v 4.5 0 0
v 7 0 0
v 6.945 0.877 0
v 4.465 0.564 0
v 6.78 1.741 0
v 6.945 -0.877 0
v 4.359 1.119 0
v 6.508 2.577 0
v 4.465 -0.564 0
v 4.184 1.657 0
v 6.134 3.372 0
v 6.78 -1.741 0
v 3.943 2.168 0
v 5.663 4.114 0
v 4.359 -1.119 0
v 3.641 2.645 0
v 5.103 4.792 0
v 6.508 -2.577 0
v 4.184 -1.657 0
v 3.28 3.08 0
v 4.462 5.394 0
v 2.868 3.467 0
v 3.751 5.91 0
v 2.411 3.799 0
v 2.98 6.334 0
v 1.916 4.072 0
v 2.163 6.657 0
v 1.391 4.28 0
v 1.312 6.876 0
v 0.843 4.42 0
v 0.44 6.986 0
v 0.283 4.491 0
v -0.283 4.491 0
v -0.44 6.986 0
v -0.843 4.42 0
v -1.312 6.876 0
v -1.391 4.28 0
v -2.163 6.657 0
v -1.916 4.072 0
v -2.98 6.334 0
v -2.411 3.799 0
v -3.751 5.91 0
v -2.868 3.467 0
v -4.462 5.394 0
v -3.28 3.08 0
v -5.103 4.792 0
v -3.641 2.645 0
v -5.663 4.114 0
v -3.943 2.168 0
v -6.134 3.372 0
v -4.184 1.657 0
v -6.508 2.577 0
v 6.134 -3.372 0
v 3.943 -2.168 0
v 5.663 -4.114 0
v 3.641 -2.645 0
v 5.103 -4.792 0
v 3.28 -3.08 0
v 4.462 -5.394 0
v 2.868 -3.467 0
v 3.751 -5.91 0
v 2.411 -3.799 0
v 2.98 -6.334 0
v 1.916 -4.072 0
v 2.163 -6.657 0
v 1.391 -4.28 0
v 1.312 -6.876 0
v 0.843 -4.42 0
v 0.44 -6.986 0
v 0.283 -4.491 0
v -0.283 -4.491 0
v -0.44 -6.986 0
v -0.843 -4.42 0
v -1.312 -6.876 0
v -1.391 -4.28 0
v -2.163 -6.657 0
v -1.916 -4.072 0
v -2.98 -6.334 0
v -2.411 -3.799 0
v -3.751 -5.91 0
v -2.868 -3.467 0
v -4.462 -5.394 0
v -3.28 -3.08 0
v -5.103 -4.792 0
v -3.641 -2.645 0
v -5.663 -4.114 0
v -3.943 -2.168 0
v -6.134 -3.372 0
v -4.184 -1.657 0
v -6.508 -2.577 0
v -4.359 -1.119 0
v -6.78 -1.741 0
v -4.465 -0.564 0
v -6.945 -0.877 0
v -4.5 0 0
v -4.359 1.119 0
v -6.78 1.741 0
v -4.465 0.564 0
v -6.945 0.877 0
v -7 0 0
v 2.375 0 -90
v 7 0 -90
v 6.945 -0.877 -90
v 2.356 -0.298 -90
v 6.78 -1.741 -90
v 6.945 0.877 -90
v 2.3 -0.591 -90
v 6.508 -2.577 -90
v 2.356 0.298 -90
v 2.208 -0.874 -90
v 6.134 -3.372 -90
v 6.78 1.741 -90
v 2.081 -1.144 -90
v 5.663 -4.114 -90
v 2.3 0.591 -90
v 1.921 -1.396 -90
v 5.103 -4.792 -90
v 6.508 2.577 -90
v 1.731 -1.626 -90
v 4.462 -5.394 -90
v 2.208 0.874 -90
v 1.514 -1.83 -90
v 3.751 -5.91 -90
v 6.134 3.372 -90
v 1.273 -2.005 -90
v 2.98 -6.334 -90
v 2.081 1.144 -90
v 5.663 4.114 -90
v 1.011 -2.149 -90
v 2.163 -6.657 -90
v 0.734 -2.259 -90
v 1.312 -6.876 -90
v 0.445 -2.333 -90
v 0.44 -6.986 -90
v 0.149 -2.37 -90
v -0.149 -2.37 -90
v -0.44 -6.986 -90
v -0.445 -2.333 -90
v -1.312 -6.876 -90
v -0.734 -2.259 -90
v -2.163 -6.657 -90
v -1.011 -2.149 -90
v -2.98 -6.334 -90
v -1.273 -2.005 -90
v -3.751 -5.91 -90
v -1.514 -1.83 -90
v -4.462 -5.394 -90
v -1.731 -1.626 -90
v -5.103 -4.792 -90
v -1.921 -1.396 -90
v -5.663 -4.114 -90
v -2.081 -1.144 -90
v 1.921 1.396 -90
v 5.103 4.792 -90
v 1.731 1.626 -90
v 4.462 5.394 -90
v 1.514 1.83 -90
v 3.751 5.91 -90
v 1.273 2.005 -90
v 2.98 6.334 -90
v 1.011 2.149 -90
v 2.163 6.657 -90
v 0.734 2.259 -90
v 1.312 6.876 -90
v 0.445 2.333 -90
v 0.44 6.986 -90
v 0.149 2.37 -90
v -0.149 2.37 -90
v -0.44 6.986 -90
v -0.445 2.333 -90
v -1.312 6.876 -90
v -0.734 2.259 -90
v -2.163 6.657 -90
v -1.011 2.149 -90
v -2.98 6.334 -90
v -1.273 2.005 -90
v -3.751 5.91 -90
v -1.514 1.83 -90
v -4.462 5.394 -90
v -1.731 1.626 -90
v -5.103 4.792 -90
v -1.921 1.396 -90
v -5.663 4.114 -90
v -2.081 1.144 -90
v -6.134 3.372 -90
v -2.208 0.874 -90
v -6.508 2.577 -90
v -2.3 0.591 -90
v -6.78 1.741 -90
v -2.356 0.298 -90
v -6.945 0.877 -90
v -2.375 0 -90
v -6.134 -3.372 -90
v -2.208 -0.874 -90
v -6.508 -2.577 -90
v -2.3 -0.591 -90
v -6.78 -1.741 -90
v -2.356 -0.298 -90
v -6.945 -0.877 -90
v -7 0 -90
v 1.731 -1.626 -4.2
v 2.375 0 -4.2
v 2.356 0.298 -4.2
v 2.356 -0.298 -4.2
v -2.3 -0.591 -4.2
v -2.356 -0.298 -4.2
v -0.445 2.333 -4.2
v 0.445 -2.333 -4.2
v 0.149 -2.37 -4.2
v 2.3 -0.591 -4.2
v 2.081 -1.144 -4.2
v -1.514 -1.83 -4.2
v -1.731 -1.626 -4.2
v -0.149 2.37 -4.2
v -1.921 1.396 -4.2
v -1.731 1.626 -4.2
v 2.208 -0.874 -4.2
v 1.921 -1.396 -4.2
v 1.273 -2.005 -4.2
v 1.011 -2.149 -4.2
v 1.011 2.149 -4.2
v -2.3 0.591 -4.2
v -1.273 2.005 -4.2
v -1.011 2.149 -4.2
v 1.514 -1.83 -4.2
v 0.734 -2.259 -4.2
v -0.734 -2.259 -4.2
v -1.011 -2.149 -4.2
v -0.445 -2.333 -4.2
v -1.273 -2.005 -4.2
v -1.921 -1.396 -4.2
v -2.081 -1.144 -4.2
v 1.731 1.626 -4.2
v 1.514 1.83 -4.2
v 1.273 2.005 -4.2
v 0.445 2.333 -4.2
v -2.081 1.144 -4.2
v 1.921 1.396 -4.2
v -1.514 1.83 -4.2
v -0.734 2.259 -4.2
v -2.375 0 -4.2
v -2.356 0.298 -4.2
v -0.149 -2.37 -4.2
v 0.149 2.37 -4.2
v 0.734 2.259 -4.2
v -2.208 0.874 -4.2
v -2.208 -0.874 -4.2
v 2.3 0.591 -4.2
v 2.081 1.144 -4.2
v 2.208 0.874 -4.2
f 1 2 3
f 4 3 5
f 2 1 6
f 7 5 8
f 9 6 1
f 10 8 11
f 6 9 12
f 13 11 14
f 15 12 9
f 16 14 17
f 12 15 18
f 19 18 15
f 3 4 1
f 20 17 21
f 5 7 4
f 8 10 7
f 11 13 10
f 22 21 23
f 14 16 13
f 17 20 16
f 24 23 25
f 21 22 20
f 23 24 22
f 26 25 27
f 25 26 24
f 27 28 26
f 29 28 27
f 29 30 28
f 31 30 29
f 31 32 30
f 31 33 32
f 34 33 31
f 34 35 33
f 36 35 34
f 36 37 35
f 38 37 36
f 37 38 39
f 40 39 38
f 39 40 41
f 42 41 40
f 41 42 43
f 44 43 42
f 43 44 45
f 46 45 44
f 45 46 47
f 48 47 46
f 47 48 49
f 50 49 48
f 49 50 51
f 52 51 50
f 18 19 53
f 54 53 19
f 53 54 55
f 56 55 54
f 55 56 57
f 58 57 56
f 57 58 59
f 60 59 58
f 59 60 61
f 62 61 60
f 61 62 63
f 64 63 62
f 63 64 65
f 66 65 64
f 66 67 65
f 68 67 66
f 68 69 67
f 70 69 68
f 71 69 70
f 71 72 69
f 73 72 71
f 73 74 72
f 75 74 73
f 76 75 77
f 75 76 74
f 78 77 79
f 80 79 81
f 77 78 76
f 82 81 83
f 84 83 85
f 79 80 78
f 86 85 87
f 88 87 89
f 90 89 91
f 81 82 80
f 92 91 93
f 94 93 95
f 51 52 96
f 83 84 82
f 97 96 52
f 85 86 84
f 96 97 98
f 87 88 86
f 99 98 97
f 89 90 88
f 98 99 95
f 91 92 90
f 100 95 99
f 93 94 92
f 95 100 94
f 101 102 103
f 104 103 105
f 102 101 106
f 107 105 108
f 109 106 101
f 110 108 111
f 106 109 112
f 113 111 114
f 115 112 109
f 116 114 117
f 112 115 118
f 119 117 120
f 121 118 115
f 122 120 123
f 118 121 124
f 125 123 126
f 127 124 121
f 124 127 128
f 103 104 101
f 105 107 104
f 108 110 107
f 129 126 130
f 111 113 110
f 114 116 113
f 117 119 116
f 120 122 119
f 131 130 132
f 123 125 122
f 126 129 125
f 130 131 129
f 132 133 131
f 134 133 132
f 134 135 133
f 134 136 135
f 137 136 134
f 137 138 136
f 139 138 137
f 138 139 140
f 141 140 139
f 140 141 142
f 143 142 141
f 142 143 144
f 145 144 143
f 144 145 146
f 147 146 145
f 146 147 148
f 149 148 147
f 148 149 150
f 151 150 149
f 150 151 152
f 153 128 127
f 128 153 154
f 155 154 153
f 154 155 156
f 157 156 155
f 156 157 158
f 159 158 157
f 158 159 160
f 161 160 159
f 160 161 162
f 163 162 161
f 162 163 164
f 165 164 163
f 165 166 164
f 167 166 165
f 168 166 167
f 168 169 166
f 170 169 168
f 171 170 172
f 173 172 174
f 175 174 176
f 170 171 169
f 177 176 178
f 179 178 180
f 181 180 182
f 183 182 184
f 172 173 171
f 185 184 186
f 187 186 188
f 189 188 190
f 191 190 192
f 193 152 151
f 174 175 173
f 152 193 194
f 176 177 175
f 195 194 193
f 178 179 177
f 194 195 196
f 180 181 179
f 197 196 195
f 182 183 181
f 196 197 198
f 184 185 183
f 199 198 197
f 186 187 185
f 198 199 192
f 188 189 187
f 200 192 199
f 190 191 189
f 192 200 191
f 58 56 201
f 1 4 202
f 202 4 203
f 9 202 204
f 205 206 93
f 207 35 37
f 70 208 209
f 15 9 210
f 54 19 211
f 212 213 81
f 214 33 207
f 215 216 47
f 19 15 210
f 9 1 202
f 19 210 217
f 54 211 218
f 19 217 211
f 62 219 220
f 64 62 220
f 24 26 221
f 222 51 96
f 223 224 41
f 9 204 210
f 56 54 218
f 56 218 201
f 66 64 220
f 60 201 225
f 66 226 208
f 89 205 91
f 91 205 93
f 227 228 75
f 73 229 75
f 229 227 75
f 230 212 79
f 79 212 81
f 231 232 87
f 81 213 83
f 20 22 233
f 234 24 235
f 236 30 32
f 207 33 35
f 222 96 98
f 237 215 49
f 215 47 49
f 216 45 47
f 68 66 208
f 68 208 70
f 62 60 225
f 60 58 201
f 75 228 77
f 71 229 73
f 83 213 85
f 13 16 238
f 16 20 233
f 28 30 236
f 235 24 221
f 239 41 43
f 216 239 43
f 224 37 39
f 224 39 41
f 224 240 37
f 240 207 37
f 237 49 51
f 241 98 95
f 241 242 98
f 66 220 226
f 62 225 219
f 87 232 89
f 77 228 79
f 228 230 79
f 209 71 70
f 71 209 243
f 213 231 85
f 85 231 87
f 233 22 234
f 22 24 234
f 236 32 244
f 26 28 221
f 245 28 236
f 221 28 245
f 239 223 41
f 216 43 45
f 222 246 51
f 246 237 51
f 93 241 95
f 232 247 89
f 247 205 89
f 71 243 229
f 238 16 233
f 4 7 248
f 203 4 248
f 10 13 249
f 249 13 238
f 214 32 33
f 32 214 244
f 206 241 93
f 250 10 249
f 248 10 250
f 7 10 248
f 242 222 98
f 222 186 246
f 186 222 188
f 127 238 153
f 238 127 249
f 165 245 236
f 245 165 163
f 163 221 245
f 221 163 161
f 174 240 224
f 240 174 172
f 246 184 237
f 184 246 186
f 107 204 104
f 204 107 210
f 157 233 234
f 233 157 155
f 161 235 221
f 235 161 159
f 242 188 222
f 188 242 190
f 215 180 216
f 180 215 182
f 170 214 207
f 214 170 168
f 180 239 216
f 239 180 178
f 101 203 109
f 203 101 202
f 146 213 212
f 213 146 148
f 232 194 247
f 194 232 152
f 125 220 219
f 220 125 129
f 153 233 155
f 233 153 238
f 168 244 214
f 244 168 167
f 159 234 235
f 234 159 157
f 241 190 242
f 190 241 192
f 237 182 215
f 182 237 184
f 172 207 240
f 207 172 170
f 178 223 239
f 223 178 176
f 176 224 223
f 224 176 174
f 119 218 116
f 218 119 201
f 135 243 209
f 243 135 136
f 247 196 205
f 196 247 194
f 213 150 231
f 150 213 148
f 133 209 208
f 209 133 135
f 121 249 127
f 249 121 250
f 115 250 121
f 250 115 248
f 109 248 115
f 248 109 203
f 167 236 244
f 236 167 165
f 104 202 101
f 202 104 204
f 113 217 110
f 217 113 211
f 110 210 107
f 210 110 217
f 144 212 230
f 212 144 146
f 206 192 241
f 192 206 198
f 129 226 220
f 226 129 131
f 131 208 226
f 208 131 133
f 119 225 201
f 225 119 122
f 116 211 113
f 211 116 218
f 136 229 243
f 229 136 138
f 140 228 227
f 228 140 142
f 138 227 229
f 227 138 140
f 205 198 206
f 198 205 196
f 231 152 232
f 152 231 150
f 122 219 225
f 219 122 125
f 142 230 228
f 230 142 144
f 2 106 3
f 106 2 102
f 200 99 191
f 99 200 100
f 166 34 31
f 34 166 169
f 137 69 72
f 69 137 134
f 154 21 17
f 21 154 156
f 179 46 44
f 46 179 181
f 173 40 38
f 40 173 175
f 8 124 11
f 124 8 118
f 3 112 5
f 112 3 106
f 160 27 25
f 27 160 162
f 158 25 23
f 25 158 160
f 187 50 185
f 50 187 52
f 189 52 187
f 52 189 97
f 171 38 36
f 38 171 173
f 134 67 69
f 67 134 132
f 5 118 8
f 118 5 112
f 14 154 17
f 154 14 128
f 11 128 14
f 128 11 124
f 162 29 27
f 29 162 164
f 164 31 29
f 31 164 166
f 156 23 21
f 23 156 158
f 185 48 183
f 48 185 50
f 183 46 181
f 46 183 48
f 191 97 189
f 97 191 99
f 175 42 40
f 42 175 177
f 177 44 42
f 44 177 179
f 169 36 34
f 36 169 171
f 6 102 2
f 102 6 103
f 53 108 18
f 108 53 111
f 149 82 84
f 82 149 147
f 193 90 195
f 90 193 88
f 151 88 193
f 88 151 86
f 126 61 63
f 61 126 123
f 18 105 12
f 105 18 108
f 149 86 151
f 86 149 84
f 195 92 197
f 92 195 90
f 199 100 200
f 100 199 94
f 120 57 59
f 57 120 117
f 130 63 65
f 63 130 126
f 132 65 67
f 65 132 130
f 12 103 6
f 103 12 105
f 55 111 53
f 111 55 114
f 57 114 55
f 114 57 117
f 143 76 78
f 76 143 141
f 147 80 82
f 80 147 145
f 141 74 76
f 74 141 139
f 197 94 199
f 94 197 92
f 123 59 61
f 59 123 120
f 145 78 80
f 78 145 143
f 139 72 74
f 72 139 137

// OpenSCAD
$fn = 50;


difference() {
	union() {
		translate(v = [0, 0, -90.0000000000]) {
			cylinder(h = 90, r = 7.0000000000);
		}
		cylinder(h = 0, r = 16.0000000000);
	}
	union() {
		translate(v = [0, 0, 0]) {
			rotate(a = [0, 0, 0]) {
				difference() {
					union() {
						#translate(v = [0, 0, -90.0000000000]) {
							cylinder(h = 90, r = 2.2500000000);
						}
						#translate(v = [0, 0, -4.2000000000]) {
							cylinder(h = 4.2000000000, r1 = 2.3750000000, r2 = 4.5000000000);
						}
						#translate(v = [0, 0, -90.0000000000]) {
							cylinder(h = 90, r = 2.3750000000);
						}
						#translate(v = [0, 0, -90.0000000000]) {
							cylinder(h = 90, r = 2.2500000000);
						}
					}
					union();
				}
			}
		}
	}
}
